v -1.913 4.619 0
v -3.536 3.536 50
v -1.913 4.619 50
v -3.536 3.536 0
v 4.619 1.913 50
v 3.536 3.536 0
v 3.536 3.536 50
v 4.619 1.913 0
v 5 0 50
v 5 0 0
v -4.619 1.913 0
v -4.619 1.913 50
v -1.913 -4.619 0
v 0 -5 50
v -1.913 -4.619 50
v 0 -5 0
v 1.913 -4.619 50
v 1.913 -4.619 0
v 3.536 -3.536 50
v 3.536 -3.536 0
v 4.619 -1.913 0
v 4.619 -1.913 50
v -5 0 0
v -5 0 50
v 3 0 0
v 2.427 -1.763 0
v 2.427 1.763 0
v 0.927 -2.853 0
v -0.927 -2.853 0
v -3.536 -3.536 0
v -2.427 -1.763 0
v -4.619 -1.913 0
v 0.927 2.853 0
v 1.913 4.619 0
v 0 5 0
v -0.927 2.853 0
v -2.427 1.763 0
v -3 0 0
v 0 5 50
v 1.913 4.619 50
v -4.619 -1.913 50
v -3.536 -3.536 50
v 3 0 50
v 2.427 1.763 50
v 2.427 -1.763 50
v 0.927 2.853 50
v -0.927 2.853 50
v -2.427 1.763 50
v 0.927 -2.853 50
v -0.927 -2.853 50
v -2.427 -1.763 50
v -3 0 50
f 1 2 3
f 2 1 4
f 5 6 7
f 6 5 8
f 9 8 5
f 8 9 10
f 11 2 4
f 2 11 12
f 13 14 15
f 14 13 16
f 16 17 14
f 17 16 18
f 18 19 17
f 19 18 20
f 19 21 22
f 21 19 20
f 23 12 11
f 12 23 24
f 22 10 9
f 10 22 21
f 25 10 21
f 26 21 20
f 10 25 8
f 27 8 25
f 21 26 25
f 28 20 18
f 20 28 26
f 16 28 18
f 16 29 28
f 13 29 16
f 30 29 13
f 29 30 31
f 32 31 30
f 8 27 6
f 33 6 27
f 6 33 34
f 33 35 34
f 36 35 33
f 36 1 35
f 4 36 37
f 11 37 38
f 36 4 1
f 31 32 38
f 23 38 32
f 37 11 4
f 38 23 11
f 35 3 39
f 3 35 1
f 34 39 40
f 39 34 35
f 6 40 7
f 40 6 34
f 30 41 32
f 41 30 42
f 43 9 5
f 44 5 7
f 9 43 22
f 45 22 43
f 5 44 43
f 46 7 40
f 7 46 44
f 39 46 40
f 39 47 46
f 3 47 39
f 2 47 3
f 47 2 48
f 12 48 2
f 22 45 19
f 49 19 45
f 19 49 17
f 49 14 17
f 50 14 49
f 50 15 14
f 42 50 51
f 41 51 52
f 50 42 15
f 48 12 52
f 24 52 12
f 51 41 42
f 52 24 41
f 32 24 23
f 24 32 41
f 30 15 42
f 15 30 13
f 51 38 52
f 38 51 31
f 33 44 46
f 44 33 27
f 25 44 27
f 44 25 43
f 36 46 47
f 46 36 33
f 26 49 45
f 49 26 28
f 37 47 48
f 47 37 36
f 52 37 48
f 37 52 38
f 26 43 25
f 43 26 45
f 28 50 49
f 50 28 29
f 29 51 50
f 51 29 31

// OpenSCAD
// Parameters
diameter = 10;  // Diameter of the shaft
length = 50;     // Length of the shaft
wall_thickness = 2; // Thickness of the shaft wall
taper_angle = 15; // Angle of the taper at the top

// Calculate inner diameter
inner_diameter = diameter - (2 * wall_thickness);

// Create the shaft
difference() {
    cylinder(h = length, d = diameter, center = false);
    cylinder(h = length, d = inner_diameter, center = false);
}

// Tapered top (optional)
//translate([0, 0, length])
//rotate([0, 0, 90])
//linear_extrude(height = wall_thickness)
//polygon(points=[[0, 0], [inner_diameter/2, 0]]);
